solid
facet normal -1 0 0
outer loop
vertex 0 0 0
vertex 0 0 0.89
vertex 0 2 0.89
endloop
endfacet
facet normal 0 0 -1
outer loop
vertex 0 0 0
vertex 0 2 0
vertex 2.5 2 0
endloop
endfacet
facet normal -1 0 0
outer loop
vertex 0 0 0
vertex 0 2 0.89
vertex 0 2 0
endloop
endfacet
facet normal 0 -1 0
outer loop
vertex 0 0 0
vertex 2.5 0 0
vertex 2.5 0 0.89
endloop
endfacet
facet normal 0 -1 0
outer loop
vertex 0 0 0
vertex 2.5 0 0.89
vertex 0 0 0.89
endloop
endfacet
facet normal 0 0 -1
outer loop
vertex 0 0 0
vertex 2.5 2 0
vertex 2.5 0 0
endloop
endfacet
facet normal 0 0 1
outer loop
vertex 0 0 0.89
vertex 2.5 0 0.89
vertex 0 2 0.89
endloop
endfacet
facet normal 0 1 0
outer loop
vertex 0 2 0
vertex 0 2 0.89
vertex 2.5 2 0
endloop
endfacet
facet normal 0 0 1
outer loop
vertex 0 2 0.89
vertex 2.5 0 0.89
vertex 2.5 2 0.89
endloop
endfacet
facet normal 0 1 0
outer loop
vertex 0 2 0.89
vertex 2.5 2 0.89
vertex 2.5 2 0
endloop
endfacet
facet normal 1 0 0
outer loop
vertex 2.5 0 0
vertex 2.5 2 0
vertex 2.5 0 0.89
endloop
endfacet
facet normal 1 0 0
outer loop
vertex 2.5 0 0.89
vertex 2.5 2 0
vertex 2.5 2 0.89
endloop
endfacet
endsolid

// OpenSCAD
/* Warning, this is a very basic generator with a lot of approximation 
input data : [VLGA, AUA, 2.5x2.0x0.89mm, 4, , B, C04-01202B]
generated by com.zoubworld.electronics.cad.model3d.Basic
Date : Sun Feb 15 10:50:49 CET 2026
*/

//body
color("black")
translate([0,0,0])
cube([2.5,2.0,0.89], center=false);
